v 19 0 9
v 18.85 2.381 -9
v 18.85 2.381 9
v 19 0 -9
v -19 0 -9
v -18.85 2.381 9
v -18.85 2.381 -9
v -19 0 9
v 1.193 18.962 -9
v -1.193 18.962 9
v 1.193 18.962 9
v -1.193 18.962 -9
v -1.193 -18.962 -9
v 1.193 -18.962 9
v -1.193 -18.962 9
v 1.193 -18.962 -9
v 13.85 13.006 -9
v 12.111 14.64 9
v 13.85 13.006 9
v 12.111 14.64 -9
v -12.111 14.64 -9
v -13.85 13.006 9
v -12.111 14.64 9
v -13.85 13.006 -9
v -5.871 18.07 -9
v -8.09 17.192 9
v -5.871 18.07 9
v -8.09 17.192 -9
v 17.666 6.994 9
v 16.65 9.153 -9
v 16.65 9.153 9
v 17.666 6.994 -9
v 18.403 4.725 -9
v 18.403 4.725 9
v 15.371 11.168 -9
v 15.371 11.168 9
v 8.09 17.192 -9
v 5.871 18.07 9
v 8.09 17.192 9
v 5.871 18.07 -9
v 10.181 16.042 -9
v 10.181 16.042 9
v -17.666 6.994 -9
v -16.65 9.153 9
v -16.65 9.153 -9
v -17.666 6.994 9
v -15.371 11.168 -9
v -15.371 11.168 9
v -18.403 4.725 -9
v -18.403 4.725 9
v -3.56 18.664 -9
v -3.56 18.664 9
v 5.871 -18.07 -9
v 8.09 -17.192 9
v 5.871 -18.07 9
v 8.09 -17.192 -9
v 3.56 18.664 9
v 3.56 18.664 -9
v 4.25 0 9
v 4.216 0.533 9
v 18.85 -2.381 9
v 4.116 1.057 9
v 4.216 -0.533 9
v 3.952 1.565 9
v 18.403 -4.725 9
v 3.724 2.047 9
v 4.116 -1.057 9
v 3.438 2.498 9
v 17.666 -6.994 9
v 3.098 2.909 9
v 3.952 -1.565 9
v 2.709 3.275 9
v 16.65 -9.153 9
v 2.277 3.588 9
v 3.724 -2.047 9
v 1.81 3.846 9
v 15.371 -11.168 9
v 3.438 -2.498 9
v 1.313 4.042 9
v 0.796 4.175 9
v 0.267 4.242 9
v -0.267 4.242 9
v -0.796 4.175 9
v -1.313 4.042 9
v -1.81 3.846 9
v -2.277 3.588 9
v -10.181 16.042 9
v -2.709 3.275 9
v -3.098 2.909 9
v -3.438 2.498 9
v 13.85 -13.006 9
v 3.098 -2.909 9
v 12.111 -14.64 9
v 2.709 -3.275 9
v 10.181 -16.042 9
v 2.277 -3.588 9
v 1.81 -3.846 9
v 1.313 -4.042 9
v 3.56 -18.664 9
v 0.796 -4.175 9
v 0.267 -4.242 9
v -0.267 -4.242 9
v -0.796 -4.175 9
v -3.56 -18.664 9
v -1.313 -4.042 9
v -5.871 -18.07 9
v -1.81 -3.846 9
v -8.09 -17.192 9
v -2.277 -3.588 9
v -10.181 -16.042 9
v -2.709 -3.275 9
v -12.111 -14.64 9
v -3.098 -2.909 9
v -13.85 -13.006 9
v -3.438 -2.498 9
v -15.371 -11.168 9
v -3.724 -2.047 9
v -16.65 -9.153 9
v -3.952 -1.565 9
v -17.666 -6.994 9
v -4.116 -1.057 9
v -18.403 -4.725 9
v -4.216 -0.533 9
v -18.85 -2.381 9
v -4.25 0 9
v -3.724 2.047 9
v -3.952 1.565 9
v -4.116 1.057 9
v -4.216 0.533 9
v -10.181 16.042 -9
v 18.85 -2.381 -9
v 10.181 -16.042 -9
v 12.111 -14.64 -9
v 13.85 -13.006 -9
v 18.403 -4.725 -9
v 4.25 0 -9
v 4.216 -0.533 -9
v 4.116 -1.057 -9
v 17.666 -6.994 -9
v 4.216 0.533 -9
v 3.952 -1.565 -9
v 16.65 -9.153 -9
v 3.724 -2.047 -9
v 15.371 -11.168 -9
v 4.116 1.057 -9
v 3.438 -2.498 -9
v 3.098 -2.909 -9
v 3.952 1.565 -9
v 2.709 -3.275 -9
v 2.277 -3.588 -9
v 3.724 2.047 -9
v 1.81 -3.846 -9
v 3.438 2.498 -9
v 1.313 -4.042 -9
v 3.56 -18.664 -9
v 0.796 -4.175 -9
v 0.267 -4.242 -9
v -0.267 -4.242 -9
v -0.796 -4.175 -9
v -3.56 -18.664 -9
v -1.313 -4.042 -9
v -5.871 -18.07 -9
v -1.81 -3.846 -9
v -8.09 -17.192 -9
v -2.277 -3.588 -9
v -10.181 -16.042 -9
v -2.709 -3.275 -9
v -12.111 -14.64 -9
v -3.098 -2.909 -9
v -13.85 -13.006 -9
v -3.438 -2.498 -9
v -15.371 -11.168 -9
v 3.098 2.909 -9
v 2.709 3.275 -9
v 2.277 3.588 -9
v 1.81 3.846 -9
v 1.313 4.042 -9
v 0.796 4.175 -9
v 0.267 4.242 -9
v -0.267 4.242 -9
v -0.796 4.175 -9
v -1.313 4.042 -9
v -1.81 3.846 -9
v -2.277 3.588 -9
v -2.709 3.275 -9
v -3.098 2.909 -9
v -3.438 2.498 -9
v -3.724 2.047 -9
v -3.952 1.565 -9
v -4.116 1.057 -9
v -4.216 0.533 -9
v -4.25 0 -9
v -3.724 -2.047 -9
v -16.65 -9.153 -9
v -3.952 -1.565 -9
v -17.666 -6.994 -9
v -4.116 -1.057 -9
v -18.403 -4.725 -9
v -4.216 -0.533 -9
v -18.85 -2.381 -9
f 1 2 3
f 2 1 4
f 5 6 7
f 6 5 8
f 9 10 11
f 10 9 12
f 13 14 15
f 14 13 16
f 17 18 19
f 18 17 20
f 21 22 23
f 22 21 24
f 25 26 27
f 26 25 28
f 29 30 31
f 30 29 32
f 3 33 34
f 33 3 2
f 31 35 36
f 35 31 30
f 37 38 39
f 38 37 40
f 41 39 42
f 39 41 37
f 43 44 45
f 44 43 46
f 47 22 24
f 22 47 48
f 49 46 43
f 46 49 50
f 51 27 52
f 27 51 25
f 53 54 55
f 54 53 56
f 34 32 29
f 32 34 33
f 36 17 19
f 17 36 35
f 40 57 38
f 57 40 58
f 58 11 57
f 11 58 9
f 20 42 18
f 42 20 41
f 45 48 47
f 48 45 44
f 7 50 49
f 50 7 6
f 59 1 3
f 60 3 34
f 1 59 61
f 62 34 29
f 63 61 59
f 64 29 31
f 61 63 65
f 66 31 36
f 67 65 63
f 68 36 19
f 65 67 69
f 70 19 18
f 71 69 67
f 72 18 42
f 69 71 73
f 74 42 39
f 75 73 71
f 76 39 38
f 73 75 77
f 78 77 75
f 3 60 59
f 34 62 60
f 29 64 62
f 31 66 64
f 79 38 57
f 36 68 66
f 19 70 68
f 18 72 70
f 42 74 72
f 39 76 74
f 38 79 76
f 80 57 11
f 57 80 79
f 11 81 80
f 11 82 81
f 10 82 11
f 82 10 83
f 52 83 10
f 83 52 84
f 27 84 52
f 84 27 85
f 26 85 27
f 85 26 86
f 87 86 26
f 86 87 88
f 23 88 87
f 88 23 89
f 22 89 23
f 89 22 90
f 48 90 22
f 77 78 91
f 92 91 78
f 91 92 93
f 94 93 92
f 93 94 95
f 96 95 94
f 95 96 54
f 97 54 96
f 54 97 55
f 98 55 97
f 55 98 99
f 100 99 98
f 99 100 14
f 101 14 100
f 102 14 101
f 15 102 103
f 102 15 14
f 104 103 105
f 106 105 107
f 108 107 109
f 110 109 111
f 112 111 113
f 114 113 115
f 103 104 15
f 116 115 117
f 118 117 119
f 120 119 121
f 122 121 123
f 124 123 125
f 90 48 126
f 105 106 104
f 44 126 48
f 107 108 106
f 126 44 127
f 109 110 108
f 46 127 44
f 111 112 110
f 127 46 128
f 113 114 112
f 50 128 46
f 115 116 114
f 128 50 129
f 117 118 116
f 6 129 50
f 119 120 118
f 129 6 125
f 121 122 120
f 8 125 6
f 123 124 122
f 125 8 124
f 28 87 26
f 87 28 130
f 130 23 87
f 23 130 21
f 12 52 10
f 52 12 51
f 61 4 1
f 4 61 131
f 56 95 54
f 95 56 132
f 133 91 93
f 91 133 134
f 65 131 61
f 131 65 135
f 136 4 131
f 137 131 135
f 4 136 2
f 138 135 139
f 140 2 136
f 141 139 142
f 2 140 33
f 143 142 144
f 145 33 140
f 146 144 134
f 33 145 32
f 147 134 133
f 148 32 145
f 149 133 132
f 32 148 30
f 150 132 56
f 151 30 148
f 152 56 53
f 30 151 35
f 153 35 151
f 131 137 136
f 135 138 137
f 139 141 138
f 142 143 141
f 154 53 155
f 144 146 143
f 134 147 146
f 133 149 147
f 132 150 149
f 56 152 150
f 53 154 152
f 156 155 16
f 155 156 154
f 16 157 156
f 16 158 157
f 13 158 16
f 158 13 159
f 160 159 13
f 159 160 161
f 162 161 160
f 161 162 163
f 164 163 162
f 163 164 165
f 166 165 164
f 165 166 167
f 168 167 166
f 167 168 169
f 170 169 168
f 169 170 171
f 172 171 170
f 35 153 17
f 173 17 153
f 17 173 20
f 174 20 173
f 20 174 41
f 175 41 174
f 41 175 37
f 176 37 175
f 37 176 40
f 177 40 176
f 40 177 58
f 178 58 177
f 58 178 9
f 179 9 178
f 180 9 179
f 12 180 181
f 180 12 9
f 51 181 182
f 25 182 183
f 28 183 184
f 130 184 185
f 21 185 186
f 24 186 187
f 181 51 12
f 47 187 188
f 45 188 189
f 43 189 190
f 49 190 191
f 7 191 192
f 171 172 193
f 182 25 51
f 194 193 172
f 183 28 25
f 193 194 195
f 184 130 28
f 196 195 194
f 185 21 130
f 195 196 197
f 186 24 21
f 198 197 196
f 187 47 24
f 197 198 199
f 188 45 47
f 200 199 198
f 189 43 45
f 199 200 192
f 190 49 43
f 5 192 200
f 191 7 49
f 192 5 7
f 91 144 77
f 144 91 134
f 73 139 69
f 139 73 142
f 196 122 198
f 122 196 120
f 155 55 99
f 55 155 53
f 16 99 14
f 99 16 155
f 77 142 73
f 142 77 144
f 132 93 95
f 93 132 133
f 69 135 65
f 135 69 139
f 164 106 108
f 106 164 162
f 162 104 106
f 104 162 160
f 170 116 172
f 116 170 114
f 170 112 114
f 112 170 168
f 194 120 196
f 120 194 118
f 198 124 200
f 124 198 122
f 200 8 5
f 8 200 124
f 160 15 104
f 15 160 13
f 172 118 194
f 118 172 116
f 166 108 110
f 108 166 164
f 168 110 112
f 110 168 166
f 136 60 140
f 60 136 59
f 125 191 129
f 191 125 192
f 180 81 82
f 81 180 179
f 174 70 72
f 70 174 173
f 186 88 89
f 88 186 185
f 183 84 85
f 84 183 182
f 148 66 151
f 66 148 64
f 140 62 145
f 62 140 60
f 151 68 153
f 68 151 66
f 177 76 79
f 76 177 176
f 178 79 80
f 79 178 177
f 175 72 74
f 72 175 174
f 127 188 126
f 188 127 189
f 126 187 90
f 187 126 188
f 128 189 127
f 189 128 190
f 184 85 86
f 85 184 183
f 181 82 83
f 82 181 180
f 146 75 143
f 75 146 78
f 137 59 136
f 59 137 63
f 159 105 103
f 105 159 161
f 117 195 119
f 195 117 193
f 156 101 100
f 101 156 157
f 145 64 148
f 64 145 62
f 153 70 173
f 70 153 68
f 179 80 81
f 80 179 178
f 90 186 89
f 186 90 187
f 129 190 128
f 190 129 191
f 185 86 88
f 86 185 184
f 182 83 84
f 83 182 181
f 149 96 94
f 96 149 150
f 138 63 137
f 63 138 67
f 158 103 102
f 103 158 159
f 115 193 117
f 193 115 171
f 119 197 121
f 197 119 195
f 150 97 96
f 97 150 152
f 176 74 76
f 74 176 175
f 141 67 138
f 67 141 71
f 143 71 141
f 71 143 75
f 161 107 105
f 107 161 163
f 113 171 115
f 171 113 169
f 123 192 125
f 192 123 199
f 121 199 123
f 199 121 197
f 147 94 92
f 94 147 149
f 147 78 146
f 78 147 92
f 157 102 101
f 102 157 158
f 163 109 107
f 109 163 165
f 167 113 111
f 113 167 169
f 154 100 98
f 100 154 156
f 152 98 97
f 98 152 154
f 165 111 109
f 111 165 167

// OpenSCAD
$fn = 50;


difference() {
	union() {
		translate(v = [0, 0, -9.0000000000]) {
			cylinder(h = 18, r = 19.0000000000);
		}
	}
	union() {
		translate(v = [0, 0, -100.0000000000]) {
			cylinder(h = 200, r = 4.2500000000);
		}
	}
}
